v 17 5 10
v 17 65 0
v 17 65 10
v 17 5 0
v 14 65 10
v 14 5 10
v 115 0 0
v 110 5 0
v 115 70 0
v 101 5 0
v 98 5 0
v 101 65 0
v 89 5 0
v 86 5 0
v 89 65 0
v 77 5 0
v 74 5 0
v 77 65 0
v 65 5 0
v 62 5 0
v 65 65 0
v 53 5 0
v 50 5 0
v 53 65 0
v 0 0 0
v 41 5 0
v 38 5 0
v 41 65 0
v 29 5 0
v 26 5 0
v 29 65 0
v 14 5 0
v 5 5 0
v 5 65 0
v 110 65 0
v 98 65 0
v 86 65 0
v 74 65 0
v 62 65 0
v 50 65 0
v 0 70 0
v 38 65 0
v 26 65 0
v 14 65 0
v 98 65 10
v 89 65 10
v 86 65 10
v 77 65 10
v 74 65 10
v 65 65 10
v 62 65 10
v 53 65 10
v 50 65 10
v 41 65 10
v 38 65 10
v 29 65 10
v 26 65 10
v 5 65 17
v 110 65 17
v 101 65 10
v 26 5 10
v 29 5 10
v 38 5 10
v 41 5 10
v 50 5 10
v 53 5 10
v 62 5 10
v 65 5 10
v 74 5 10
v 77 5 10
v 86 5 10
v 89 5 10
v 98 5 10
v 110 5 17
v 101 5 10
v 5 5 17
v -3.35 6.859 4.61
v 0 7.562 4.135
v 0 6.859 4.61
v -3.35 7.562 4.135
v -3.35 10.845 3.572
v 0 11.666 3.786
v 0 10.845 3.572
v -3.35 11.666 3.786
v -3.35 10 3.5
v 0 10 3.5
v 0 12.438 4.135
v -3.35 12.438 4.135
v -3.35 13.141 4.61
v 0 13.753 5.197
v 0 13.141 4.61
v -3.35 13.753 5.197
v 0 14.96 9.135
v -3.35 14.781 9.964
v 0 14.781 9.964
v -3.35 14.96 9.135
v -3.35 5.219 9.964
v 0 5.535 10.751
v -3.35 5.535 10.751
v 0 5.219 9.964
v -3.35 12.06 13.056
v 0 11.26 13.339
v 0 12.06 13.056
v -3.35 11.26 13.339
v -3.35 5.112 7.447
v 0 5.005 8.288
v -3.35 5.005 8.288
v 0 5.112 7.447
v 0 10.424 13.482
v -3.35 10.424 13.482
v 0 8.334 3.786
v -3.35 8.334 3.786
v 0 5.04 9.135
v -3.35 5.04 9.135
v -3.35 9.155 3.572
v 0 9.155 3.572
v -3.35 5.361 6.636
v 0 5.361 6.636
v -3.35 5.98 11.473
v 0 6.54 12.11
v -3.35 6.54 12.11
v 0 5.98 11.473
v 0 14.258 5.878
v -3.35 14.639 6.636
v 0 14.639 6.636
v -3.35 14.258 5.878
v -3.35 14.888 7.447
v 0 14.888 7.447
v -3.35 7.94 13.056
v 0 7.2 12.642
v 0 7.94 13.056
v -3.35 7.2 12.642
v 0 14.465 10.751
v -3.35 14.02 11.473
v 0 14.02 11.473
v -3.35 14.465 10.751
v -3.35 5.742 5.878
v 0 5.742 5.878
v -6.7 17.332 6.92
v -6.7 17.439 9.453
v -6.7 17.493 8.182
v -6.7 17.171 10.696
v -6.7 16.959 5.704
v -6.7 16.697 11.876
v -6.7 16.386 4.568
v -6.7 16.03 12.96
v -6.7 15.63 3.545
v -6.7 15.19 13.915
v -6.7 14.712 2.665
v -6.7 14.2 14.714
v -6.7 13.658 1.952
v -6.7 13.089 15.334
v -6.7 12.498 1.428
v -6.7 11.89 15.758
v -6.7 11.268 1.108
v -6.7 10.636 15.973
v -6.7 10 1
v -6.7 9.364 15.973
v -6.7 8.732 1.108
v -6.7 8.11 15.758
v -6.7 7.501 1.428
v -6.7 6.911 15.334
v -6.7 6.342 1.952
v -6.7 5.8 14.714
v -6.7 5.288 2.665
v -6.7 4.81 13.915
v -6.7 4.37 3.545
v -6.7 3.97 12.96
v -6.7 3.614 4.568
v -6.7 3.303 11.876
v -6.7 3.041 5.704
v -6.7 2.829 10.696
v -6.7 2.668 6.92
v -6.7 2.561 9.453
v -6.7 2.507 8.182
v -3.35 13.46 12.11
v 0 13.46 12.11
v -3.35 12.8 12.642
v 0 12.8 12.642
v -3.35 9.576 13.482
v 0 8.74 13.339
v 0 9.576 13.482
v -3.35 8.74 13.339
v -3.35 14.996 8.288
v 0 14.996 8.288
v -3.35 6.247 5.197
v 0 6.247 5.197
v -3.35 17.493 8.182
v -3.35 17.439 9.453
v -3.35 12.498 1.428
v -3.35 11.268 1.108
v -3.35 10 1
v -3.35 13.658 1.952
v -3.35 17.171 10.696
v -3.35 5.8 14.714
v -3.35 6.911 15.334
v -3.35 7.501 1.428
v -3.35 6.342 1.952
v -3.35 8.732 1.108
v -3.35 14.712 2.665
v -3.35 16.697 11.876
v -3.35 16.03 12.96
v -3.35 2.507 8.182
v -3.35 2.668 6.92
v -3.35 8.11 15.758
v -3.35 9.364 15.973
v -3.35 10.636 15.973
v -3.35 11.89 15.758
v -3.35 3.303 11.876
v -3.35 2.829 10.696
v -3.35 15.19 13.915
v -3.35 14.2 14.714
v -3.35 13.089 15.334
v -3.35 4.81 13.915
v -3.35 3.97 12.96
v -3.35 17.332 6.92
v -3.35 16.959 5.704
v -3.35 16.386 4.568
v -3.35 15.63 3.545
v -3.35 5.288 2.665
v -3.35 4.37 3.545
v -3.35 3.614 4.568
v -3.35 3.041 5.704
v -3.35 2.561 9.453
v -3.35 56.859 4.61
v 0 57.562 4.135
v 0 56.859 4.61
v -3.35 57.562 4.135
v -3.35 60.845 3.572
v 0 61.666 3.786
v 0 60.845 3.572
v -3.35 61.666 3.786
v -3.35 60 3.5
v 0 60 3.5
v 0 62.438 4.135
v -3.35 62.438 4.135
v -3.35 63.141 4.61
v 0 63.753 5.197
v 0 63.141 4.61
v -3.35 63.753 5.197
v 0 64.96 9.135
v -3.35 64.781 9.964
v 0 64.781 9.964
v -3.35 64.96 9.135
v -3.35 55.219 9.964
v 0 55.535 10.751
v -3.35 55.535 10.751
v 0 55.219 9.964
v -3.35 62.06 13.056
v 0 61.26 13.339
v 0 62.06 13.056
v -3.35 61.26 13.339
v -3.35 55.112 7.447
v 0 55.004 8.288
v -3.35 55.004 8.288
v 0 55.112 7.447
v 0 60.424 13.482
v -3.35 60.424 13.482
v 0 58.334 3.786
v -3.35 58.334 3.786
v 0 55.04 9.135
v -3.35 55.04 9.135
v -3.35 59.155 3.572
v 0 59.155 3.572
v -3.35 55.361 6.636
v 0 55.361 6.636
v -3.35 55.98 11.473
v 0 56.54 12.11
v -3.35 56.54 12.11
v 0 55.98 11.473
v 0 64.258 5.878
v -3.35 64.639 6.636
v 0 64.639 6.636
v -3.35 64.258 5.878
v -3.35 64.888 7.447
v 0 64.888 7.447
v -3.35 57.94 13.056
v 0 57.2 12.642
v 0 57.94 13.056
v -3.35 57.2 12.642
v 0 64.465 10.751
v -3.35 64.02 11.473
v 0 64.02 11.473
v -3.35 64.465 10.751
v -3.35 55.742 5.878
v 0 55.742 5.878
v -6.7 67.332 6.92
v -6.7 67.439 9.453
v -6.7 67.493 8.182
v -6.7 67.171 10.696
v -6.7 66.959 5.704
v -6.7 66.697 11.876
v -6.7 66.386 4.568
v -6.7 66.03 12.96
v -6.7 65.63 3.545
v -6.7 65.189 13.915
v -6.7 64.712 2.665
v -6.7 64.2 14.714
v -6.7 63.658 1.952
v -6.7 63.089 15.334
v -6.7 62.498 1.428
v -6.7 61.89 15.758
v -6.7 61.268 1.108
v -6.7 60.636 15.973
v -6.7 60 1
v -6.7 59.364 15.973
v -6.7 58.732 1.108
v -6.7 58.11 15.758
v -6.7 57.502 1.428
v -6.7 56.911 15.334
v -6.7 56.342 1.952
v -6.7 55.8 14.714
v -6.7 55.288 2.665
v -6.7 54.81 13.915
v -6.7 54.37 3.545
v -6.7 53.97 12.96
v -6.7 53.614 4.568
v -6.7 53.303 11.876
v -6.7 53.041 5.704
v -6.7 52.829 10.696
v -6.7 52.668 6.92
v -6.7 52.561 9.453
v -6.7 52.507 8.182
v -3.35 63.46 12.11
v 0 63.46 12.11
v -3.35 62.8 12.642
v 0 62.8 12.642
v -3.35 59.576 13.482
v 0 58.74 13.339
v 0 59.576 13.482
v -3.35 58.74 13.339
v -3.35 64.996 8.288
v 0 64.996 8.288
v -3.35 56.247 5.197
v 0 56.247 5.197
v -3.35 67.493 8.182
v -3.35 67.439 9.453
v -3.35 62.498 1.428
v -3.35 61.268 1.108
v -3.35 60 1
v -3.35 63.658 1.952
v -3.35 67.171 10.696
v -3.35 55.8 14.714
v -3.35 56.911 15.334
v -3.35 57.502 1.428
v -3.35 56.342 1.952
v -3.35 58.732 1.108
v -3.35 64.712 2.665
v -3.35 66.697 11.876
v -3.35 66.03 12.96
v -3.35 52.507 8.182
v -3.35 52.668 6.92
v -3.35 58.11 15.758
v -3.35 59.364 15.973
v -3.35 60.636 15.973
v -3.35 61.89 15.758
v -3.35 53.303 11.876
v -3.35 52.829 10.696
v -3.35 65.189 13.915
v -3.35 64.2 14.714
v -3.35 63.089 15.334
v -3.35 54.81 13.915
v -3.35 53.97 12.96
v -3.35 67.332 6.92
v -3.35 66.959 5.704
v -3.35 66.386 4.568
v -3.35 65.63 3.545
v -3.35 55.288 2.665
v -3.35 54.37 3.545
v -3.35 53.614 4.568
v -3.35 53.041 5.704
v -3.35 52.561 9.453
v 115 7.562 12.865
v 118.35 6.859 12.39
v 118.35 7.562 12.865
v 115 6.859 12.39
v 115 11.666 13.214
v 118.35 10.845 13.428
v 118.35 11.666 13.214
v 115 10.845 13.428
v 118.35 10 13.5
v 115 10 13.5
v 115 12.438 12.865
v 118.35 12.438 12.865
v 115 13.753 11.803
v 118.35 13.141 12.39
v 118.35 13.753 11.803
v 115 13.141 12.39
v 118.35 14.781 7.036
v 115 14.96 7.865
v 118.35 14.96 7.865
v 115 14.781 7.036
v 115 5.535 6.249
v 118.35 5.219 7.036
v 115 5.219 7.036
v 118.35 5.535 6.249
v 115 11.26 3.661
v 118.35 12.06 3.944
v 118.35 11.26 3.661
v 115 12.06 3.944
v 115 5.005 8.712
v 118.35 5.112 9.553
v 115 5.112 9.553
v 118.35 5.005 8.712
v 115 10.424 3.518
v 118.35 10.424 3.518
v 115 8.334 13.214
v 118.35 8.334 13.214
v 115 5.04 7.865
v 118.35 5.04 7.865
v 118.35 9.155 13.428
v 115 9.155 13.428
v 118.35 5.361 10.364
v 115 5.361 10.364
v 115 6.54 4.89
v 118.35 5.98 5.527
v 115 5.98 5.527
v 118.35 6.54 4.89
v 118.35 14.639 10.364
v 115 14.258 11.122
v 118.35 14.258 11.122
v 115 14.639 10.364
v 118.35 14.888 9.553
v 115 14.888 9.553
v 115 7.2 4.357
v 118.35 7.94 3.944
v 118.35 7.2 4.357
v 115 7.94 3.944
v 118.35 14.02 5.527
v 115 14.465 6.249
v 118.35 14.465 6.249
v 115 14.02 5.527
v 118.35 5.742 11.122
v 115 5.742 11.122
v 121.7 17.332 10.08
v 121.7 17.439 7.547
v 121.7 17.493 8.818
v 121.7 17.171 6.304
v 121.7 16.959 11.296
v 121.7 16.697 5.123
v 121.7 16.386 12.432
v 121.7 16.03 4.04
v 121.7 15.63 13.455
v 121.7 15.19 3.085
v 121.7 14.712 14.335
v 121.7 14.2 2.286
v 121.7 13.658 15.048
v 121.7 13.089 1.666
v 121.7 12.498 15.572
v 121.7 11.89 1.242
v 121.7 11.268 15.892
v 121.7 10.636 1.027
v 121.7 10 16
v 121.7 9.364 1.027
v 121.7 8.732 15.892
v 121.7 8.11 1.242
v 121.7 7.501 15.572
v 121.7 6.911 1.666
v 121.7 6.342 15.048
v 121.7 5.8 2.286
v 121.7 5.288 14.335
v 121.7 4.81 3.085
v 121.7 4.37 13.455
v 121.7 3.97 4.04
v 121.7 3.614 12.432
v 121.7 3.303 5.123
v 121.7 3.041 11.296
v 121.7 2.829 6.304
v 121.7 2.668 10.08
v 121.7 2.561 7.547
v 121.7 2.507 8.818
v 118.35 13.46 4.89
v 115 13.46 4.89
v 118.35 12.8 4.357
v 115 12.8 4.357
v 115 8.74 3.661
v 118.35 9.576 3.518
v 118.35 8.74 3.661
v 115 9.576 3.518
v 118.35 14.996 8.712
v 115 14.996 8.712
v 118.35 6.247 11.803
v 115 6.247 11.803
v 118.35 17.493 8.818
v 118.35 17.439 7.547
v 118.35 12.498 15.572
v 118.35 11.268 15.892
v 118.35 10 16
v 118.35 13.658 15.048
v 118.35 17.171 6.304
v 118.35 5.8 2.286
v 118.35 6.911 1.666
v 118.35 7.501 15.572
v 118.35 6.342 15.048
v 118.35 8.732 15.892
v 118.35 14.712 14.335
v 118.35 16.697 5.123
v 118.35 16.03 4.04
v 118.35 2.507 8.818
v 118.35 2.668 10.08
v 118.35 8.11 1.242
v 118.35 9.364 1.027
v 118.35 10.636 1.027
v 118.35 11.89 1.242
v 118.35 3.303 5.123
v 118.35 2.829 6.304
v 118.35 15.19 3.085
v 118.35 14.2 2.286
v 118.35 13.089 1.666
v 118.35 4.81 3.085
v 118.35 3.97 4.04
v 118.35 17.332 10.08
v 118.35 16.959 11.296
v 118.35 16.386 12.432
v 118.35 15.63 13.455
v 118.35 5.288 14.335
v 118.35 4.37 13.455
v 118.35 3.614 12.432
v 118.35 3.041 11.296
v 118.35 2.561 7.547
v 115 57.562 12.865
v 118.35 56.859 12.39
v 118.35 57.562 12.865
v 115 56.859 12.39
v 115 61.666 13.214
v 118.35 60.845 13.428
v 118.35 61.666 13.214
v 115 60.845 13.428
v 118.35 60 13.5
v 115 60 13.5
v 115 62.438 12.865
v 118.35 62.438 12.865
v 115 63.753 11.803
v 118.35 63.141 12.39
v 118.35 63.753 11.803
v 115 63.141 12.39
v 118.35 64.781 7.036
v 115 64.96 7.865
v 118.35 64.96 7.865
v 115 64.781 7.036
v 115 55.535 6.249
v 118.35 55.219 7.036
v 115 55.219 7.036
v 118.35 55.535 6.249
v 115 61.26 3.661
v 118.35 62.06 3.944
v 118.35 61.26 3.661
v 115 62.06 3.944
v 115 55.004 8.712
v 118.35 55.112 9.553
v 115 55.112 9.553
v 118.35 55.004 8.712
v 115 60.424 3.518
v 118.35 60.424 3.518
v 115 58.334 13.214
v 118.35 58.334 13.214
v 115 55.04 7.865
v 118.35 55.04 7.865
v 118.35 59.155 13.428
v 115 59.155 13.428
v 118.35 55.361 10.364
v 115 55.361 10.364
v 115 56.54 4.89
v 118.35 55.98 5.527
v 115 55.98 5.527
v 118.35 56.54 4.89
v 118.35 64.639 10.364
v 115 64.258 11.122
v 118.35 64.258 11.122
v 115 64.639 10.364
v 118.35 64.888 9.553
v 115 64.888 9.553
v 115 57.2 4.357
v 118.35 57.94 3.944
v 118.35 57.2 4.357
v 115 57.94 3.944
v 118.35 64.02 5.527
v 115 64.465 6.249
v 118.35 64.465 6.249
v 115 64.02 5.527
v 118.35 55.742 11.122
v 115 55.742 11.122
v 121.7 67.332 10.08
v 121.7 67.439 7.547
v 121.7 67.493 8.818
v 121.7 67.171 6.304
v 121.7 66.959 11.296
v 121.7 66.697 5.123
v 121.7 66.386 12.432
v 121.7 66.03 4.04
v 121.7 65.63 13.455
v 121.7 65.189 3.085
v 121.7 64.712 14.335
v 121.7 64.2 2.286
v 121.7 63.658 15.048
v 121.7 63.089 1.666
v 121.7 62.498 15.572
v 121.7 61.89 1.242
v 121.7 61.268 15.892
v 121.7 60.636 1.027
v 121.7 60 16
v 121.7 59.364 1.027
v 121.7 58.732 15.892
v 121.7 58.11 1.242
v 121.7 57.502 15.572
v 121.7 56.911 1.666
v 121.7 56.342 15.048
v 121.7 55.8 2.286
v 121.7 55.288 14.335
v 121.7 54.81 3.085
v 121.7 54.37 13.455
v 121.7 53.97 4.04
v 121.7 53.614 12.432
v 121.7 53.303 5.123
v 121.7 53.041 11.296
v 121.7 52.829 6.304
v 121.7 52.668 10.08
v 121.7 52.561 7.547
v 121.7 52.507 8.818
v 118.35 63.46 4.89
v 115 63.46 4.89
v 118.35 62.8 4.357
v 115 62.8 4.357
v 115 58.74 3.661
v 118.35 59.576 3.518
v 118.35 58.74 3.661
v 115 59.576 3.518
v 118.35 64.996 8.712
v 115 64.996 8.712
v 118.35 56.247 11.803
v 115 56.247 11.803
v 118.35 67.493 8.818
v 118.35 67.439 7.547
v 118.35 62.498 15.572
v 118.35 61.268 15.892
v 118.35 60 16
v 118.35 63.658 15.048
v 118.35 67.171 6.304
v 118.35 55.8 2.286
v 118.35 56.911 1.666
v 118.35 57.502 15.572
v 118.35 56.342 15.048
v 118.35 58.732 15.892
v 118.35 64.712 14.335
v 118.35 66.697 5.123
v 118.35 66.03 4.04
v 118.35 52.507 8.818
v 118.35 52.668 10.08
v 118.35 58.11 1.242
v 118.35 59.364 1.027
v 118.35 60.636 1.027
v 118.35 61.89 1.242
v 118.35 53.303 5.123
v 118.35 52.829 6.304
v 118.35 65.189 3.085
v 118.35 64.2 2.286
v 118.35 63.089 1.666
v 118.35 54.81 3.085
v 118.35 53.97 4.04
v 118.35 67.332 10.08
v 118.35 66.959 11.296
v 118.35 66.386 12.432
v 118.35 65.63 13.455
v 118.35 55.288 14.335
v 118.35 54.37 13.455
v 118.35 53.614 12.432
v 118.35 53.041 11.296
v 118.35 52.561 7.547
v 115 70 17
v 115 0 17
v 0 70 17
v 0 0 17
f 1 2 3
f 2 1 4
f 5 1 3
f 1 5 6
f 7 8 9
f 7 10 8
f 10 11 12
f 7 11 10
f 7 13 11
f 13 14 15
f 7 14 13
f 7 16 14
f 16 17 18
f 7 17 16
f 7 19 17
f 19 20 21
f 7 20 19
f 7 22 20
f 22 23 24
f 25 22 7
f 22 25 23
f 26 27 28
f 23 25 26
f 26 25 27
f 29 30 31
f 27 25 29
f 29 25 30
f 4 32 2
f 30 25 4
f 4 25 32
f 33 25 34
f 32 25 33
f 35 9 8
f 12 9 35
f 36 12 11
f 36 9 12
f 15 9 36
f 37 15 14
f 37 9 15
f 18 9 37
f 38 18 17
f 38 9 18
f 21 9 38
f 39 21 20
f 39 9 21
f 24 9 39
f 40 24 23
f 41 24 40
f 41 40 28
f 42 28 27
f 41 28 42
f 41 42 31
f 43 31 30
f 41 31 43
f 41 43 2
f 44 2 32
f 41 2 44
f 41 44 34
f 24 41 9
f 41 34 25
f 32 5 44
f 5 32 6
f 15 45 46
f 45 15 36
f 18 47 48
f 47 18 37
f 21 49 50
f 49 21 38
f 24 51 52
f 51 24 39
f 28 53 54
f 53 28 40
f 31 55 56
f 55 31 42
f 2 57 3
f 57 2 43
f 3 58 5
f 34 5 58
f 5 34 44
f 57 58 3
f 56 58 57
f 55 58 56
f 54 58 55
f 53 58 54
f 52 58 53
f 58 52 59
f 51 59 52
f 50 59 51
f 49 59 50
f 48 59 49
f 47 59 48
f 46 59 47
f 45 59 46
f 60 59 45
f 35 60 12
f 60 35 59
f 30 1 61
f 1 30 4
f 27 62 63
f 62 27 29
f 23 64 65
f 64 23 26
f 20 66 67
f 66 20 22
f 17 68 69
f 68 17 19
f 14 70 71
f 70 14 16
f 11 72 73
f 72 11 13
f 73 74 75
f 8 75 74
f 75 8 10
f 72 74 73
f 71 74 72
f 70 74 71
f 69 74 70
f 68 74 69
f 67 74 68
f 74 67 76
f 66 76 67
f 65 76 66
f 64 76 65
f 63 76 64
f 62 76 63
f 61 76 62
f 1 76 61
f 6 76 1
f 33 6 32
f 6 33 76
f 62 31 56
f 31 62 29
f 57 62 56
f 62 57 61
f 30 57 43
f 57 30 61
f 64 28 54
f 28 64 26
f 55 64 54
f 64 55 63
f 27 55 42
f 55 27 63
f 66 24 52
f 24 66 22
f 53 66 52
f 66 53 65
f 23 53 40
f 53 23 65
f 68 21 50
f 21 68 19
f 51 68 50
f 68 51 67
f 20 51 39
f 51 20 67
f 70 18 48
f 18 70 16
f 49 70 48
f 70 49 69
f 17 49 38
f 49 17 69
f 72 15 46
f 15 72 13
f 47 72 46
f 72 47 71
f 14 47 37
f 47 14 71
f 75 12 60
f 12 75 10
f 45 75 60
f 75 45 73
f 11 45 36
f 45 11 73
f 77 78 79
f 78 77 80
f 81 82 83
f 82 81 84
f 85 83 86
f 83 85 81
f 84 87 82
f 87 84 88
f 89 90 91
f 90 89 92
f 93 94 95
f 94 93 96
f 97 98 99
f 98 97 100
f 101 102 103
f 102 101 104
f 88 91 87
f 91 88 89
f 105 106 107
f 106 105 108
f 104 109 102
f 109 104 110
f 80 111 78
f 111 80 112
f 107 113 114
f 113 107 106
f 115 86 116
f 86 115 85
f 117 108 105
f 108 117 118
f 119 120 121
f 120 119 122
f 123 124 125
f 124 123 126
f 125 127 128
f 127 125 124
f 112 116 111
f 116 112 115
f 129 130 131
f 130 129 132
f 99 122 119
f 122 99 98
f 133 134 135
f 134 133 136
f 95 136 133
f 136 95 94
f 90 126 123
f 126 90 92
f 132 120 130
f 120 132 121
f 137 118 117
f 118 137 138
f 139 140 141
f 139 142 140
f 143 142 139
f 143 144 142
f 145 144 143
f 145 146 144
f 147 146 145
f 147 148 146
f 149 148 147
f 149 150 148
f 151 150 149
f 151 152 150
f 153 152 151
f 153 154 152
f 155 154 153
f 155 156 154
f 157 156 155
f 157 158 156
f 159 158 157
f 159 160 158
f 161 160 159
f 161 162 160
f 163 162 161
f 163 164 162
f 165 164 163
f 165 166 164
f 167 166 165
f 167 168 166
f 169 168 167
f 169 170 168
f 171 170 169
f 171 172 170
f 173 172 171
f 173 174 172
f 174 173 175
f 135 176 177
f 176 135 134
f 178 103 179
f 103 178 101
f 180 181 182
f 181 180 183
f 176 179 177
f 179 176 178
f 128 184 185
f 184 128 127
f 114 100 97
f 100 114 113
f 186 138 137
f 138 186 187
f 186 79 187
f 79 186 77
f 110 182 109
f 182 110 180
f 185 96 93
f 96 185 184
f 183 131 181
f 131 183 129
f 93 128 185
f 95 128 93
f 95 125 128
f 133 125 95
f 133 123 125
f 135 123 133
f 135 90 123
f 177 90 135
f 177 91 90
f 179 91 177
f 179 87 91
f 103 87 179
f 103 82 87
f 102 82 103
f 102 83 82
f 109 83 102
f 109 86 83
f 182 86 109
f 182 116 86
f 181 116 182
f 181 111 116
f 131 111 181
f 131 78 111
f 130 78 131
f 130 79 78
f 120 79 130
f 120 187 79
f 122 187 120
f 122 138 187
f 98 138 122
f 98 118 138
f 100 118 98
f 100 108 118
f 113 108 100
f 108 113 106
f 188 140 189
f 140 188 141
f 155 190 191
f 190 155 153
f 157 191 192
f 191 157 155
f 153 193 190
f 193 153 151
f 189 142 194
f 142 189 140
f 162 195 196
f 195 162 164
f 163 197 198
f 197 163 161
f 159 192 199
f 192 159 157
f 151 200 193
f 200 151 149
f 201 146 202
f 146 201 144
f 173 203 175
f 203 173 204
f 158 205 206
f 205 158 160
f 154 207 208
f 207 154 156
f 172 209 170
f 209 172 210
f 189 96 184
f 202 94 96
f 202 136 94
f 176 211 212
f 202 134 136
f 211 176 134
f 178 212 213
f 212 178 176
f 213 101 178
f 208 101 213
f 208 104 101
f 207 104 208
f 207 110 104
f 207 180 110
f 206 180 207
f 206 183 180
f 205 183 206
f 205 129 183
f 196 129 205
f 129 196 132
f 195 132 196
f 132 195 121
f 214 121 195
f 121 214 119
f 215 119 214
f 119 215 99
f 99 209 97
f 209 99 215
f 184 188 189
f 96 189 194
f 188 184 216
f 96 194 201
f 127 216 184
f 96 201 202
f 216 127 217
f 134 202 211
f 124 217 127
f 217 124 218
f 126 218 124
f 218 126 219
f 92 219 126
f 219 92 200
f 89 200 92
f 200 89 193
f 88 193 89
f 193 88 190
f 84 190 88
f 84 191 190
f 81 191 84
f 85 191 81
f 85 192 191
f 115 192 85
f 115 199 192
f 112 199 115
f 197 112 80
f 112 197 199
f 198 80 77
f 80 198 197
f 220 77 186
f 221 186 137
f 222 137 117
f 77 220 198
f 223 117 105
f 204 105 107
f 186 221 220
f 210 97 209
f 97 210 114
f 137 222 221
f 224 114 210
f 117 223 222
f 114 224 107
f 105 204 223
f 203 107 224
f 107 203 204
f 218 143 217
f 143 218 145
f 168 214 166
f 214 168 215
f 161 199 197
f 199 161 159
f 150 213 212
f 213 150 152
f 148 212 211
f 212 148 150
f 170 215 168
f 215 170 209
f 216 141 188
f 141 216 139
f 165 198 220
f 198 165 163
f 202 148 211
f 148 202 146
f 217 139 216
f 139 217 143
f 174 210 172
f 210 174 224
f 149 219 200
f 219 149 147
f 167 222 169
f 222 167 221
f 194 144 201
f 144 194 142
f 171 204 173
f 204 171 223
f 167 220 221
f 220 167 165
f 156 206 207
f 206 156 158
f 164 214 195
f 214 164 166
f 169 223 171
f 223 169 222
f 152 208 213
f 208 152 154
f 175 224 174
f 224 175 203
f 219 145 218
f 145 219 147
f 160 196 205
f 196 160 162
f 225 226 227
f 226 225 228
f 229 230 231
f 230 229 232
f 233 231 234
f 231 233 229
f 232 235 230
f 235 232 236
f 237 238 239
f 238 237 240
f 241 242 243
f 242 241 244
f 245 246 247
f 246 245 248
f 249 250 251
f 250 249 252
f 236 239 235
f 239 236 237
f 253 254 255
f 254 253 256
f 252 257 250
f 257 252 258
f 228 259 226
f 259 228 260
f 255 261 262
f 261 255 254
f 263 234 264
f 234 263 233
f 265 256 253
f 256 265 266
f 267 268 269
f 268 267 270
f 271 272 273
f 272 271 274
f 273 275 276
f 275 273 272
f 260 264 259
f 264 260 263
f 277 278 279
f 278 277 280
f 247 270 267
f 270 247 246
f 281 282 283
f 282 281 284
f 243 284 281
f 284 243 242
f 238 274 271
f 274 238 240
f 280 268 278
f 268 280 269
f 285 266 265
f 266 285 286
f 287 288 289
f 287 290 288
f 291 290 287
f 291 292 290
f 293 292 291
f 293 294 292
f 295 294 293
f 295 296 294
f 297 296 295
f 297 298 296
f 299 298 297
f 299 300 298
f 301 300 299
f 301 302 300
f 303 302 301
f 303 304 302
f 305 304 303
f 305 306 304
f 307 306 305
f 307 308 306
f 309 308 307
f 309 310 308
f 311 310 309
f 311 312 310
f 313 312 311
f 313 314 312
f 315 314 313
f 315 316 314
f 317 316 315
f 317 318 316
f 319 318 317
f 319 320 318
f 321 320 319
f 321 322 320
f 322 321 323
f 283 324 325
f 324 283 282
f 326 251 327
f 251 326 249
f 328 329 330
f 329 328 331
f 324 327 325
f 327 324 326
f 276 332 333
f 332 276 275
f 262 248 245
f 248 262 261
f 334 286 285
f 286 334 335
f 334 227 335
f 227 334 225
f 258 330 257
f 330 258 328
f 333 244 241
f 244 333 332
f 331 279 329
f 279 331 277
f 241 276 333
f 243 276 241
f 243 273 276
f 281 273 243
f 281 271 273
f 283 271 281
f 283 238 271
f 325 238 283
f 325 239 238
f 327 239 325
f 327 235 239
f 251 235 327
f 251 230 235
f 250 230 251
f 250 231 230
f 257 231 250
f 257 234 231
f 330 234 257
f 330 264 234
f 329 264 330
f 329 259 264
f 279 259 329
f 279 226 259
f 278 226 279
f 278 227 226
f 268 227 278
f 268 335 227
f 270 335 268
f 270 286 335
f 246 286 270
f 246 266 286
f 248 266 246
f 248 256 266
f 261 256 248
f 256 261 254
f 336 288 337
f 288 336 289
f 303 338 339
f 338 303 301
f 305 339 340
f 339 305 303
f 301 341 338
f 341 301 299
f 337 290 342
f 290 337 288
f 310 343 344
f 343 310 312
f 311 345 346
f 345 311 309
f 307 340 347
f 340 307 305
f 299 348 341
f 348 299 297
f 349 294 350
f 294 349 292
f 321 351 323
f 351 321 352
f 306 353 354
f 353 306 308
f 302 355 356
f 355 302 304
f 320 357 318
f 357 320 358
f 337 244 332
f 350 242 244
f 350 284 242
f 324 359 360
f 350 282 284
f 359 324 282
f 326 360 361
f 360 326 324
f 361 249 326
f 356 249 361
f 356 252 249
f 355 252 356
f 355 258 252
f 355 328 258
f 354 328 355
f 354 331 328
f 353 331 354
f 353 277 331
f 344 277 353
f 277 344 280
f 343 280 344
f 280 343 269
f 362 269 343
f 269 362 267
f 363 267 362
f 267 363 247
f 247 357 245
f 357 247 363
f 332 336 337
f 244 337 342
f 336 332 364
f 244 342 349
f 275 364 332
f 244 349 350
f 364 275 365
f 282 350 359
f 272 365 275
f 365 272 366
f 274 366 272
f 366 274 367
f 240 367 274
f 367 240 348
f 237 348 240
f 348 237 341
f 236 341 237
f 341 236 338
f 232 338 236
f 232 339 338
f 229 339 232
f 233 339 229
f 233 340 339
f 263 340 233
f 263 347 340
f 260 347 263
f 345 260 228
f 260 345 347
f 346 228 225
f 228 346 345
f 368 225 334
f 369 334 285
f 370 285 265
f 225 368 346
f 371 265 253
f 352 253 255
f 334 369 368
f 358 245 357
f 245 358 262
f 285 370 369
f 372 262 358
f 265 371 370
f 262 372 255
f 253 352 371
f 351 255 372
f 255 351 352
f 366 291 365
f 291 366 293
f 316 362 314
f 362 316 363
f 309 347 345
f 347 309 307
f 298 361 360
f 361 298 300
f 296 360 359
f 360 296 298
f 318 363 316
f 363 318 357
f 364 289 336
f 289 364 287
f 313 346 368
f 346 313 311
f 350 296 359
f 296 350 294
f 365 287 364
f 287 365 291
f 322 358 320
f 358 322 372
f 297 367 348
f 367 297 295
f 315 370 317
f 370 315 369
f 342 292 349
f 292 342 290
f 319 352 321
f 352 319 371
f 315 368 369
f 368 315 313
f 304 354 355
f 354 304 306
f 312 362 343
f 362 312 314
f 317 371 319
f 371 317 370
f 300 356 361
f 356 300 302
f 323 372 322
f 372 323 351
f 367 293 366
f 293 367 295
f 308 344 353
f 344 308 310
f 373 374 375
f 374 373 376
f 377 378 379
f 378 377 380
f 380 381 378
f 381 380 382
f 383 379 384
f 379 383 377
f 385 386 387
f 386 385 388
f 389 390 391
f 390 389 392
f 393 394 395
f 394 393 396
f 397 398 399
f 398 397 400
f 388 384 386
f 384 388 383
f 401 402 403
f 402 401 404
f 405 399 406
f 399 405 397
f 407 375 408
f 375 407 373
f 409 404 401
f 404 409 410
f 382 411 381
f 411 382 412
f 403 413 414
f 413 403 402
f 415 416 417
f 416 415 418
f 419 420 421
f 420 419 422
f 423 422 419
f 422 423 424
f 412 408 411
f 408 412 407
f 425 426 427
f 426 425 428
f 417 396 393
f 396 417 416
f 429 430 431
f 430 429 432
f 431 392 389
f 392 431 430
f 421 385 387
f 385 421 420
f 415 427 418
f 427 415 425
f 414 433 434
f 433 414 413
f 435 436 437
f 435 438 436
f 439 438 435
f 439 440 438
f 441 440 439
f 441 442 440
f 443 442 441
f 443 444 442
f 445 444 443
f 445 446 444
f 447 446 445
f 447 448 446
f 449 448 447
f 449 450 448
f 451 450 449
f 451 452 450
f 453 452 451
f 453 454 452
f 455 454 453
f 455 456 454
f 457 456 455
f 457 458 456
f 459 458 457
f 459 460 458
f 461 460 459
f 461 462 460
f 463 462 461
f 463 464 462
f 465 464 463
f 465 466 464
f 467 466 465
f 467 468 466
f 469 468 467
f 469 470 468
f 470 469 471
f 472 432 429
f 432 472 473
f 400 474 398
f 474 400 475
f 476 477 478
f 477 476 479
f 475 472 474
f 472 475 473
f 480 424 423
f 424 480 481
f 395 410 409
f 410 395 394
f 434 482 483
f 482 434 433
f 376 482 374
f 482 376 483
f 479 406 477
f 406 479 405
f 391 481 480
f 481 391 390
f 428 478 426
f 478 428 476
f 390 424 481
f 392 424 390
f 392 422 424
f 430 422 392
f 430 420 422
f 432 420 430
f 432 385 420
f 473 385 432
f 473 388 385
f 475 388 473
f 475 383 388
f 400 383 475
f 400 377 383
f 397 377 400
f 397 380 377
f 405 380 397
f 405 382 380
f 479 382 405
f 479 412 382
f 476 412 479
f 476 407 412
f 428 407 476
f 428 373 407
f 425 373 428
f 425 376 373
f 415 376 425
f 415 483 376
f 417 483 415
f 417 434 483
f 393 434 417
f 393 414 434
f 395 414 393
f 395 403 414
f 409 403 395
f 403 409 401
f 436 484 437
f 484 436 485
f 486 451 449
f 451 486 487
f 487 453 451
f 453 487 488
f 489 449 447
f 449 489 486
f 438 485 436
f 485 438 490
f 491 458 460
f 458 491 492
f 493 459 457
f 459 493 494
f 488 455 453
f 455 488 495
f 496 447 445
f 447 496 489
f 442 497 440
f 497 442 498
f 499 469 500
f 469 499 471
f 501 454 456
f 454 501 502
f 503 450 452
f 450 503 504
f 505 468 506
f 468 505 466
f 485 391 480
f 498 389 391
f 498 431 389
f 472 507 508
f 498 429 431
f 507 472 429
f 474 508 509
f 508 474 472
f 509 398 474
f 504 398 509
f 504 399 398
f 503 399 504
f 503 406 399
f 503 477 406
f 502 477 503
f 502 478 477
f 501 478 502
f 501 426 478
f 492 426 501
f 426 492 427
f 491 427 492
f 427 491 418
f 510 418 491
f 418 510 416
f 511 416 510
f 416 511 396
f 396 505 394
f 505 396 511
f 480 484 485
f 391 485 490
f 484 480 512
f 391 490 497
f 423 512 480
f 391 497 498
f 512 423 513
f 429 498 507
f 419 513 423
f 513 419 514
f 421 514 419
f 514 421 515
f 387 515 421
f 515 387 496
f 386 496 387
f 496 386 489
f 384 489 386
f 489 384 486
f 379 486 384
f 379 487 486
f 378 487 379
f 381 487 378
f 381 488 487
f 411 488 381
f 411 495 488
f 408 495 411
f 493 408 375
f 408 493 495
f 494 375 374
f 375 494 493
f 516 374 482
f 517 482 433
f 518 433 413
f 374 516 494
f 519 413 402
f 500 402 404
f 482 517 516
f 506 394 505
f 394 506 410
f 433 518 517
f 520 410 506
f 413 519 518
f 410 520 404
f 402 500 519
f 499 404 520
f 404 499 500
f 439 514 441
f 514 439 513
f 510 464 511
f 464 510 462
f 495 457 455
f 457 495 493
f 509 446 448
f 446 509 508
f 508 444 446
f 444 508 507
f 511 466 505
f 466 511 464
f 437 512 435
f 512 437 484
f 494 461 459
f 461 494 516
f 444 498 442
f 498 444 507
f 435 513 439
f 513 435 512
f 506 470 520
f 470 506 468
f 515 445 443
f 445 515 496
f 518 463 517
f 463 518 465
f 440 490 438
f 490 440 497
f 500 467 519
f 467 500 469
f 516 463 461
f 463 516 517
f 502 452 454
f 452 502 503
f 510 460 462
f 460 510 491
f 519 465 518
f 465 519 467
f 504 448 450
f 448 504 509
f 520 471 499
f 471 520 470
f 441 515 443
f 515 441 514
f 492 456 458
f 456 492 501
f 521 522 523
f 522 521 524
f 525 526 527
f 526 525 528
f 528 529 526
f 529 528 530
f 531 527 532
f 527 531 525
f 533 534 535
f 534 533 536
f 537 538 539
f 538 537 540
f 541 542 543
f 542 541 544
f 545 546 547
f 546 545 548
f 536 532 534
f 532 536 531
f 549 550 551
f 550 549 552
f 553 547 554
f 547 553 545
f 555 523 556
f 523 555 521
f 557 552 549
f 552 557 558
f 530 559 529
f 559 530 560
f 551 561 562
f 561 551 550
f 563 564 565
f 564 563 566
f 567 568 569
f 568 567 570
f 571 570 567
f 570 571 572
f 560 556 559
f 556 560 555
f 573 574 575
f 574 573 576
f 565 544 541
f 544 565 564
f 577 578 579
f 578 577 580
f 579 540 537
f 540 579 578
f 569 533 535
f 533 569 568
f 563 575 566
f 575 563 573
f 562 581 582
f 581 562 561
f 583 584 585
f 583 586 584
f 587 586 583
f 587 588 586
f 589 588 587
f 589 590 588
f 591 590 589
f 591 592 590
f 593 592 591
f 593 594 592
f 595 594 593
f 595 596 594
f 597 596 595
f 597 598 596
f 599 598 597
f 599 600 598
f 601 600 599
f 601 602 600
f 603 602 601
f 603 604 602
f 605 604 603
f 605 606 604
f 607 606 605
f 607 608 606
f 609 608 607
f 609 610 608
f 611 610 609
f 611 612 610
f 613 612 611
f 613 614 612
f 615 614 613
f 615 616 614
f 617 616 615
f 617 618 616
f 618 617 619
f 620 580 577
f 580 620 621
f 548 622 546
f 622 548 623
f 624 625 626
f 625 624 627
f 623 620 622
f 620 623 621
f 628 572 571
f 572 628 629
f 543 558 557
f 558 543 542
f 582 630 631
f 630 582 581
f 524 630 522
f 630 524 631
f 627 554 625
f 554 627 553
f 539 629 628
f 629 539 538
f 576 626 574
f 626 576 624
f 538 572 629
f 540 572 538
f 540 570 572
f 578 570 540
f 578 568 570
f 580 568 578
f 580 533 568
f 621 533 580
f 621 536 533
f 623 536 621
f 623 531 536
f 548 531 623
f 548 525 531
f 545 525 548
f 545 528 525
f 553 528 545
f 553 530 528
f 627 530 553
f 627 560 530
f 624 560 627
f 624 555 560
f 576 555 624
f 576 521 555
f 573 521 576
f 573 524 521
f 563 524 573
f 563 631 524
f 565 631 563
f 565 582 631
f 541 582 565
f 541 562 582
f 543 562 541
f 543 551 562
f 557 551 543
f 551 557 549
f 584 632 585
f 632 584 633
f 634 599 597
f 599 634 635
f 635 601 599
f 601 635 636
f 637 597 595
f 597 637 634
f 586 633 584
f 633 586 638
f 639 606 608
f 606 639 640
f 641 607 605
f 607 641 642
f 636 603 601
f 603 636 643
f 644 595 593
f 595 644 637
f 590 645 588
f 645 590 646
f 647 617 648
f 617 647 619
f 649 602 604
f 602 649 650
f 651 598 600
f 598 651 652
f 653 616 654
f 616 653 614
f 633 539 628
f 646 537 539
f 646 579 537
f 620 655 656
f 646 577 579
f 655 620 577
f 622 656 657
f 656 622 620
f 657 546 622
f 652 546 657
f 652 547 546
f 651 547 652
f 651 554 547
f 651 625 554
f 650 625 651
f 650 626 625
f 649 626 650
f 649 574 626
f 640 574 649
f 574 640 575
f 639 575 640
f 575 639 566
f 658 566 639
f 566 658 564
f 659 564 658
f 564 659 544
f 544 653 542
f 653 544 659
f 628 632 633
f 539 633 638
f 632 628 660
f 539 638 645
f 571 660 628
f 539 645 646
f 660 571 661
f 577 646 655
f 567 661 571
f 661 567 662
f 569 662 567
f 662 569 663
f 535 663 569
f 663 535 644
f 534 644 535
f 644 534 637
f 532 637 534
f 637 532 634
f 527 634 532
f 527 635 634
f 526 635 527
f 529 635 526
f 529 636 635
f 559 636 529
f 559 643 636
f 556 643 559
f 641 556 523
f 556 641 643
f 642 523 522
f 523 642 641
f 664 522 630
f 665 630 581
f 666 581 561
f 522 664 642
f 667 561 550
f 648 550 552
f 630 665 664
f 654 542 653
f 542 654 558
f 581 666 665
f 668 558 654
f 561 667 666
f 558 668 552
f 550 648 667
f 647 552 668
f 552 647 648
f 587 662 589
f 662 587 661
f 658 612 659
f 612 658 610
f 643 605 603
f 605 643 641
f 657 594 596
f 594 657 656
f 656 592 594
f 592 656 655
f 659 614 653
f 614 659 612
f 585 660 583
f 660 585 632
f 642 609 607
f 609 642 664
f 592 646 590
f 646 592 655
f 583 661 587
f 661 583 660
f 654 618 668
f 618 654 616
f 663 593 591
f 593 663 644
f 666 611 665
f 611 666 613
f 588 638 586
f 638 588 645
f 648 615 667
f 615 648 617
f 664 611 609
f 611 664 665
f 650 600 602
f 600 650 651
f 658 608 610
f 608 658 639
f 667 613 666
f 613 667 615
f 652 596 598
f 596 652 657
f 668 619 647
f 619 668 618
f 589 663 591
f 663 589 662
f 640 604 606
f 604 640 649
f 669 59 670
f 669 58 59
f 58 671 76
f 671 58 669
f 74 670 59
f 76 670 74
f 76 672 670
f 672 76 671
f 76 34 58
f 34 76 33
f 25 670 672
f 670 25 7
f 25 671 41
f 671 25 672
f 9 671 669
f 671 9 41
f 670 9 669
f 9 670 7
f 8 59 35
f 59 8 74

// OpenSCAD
/*
Customizable Soap Tray
Version 1.0
Written by @kenwebart
info@kenweb.art
https://kenweb.art

Please update your settings below.

License: Creative Commons Attribution-NonCommercial-ShareAlike 4.0 International (CC BY-NC-SA 4.0)
https://creativecommons.org/licenses/by-nc-sa/4.0/legalcode

You are free to:
Share — copy and redistribute the material in any medium or format
Adapt — remix, transform, and build upon the material
The licensor cannot revoke these freedoms as long as you follow the license terms.

Under the following terms: Attribution — You must give appropriate
credit, provide a link to the license, and indicate if changes were
made. You may do so in any reasonable manner, but not in any way that
suggests the licensor endorses you or your use.  NonCommercial — You
may not use the material for commercial purposes.  ShareAlike — If you
remix, transform, or build upon the material, you must distribute your
contributions under the same license as the original.  No additional
restrictions — You may not apply legal terms or technological measures
that legally restrict others from doing anything the license permits.

Notices: You do not have to comply with the license for elements of
the material in the public domain or where your use is permitted by an
applicable exception or limitation.  No warranties are given. The
license may not give you all of the permissions necessary for your
intended use. For example, other rights such as publicity, privacy, or
moral rights may limit how you use the material.
*/

/*
Use at your own risk.

THIS SOFTWARE IS PROVIDED BY THE COPYRIGHT HOLDERS AND CONTRIBUTORS "AS IS"
AND ANY EXPRESS OR IMPLIED WARRANTIES, INCLUDING, BUT NOT LIMITED TO,
THE IMPLIED WARRANTIES OF MERCHANTABILITY AND FITNESS FOR A PARTICULAR
PURPOSE ARE DISCLAIMED. IN NO EVENT SHALL THE COPYRIGHT OWNER OR CONTRIBUTORS
BE LIABLE FOR ANY DIRECT, INDIRECT, INCIDENTAL, SPECIAL, EXEMPLARY, OR
CONSEQUENTIAL DAMAGES (INCLUDING, BUT NOT LIMITED TO, PROCUREMENT OF
SUBSTITUTE GOODS OR SERVICES; LOSS OF USE, DATA, OR PROFITS; OR BUSINESS
INTERRUPTION) HOWEVER CAUSED AND ON ANY THEORY OF LIABILITY, WHETHER
IN CONTRACT, STRICT LIABILITY, OR TORT (INCLUDING NEGLIGENCE OR OTHERWISE)
ARISING IN ANY WAY OUT OF THE USE OF THIS SOFTWARE, EVEN IF ADVISED OF THE
POSSIBILITY OF SUCH DAMAGE.
*/


//
// Added mounting pegs for brackets
// E. Hazen - hazen@bu.edu - 2021-07-04
//

//width in mm.
trayX = 115;

//depth in mm.
trayY = 70; 

//height in mm.
trayZ = 10;

//wall thickness in mm.
wallThickness = 5;

//line thickness in mm. 
lineThickness = 3;

//Min. line gap in mm.
lineGap = 10;

//foot in mm.
foot = 0;

//wall in mm.
wall = 7;

//line length
lineLength = trayY-(wallThickness*2);


// module for lines
module line(start, end, height, thickness) {
	color("blue")
	hull() {
		translate(start) linear_extrude(height = height) square(thickness); 
		translate(end) linear_extrude(height = height) square(thickness); 
	}
}

line([0,0], [0,trayY-wallThickness], trayZ+foot+wall, wallThickness);
line([trayX-wallThickness,trayY-wallThickness], [trayX-wallThickness,0], trayZ+foot+wall, wallThickness);
line([0,0], [trayX-wallThickness,0], trayZ+foot+wall, wallThickness);
line([0,trayY-wallThickness], [trayX-wallThickness,trayY-wallThickness], trayZ+foot+wall, wallThickness);

//Calc how many lines possible
countX = floor(((trayX-(wallThickness*2))/(lineThickness+lineGap)));
echo("countX:", countX);
calcGapX = ((trayX-(wallThickness*2))-((lineThickness+lineGap)*countX)+lineGap)/(countX-1);
echo("calcGapX:", calcGapX);

gap = (lineGap+calcGapX)*(countX-1)/(countX+1);
echo("gap:", gap);

// padding = lineThickness+lineGap+calcGapX;
// echo("padding:", padding);

padding = lineThickness+gap;
echo("padding:", padding);


for (i=[0:countX-1]) {
	color("Fuchsia")
	translate([wallThickness+(padding*i),wallThickness,0]) 
	translate([gap,0,foot])        
	cube([lineThickness,lineLength,trayZ]);
}


// add mounting pegs for snap-on brackets

$fn=37;

bracket_thickness = 3.35;	// bracket is 0.125 in (3.2mm) thick
peg_diam = 10;

module peg() {
     rotate( [0, 90, 0]) {
	  cylinder( h=bracket_thickness*2, d=peg_diam);
	  cylinder( h=bracket_thickness, d=peg_diam+5);
     }
}

module pegs() {
     translate( [-bracket_thickness*2, 10, (trayZ+foot+wall)/2]) {
	  peg();
	  translate( [0, trayY-20, 0])
	       peg();
     }
}

pegs();
translate( [trayX, 0, trayZ+foot+wall])
rotate( [0, 180, 0])
pegs();
